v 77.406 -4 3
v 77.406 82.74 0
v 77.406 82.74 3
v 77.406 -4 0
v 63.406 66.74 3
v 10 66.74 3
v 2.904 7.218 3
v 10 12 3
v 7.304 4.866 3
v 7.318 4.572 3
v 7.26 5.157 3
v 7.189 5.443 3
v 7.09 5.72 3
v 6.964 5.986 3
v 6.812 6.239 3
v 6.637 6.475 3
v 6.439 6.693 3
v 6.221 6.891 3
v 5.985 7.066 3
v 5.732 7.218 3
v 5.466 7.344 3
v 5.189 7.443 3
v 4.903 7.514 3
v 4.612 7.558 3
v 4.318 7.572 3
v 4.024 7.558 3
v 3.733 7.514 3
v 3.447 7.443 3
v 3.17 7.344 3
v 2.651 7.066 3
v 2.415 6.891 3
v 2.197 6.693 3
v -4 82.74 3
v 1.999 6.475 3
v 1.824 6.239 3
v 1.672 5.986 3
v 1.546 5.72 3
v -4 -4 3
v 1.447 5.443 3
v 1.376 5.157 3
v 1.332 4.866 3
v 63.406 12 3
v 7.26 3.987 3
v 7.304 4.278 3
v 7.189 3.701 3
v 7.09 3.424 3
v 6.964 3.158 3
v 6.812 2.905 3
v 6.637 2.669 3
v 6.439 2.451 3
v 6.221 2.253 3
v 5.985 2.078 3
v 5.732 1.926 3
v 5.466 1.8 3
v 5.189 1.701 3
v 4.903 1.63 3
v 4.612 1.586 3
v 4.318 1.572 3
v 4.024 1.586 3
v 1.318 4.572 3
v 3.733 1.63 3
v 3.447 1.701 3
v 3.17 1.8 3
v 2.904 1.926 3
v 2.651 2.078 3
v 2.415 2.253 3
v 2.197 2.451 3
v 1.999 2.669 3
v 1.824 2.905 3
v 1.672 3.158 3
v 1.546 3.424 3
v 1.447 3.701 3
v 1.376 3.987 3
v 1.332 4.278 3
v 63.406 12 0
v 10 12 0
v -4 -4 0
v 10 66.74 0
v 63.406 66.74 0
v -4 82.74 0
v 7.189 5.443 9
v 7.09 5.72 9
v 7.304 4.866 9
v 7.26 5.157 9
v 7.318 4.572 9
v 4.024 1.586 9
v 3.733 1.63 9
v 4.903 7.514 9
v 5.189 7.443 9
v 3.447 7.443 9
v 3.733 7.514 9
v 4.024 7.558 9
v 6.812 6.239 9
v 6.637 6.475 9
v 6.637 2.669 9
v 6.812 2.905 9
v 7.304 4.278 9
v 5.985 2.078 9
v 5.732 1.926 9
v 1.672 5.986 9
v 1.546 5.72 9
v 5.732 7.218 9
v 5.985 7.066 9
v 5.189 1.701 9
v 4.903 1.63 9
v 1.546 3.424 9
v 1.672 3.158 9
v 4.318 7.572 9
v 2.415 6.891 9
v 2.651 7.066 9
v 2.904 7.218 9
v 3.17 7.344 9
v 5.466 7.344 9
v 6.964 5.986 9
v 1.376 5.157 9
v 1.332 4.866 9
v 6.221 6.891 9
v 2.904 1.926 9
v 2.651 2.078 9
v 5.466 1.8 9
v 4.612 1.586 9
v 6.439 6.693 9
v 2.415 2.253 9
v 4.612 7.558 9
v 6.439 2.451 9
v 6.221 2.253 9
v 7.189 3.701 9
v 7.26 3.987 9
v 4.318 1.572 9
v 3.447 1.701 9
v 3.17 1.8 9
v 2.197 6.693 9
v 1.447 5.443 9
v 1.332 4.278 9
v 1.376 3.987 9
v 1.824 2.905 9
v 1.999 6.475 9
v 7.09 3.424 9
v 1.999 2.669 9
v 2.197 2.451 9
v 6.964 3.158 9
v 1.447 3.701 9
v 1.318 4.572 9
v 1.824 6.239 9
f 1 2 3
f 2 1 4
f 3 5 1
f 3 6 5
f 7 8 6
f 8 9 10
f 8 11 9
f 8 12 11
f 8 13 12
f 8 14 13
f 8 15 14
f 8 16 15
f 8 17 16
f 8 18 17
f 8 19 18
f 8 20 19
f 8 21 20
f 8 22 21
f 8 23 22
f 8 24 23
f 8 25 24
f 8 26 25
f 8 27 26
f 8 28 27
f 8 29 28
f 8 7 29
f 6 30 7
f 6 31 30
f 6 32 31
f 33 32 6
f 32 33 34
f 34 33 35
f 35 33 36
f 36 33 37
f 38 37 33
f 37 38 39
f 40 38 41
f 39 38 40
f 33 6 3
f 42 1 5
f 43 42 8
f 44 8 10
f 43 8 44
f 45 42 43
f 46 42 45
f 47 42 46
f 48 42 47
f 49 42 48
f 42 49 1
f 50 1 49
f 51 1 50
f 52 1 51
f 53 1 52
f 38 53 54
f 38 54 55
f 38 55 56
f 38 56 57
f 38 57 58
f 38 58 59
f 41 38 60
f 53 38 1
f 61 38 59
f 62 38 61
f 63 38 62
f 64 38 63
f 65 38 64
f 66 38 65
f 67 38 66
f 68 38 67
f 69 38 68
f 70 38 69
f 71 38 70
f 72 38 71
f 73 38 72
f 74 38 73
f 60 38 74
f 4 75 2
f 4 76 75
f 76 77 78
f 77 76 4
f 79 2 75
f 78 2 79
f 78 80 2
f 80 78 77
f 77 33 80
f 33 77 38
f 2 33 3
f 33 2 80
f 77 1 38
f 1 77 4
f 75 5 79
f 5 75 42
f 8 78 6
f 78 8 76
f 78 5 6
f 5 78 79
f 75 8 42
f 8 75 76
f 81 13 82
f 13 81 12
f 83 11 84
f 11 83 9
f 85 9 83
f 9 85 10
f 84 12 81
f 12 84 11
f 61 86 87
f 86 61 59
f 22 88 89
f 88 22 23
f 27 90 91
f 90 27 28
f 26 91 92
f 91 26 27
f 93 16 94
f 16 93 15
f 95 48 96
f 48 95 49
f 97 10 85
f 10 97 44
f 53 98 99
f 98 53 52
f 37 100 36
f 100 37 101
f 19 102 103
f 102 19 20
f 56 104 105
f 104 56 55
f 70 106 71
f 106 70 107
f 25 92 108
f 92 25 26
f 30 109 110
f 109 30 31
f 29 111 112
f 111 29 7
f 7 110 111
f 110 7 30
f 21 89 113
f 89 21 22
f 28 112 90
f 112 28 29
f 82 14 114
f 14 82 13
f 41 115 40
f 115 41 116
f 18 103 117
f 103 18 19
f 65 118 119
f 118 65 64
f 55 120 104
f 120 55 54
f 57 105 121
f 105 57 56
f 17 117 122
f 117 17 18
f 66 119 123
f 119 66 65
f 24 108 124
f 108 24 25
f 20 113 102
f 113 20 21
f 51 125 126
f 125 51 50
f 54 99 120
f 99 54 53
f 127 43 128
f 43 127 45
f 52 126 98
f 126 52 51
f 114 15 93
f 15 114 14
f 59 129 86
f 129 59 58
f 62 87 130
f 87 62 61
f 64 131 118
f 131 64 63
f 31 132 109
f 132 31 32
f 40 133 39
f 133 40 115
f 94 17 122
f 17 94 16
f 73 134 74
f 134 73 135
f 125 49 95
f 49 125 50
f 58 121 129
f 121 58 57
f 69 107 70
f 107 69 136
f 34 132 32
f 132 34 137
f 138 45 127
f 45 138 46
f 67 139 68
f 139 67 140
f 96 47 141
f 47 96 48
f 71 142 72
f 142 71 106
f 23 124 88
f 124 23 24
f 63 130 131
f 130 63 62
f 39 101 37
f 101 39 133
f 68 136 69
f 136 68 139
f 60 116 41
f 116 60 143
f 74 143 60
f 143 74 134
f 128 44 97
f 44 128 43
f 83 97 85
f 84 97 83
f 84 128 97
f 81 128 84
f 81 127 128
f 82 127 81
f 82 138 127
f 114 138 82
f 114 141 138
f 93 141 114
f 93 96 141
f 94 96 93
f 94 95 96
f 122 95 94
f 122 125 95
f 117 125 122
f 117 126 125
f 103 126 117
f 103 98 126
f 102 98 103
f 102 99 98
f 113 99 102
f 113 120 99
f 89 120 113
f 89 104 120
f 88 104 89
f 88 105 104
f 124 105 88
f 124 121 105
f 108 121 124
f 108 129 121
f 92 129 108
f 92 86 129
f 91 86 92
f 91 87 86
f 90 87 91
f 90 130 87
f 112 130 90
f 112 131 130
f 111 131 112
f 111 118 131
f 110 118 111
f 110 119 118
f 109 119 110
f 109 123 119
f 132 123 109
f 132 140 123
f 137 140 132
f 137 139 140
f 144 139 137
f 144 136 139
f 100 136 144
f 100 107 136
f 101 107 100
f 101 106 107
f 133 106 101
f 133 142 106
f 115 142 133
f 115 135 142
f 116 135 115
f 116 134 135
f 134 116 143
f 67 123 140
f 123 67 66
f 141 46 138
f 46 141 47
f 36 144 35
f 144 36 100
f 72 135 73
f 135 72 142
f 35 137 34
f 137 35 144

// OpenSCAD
// Units: mm. PCB stand worked example.
union() {
  difference() {
    translate([-4, -4, 0])
      cube([81.406, 86.740, 3]);
    translate([10, 12, -0.1])
      cube([53.406, 54.740, 3.2]);
  }
  translate([4.318, 4.572, 2.8])
    cylinder(h=6.2, d=6, $fn=64);
}
